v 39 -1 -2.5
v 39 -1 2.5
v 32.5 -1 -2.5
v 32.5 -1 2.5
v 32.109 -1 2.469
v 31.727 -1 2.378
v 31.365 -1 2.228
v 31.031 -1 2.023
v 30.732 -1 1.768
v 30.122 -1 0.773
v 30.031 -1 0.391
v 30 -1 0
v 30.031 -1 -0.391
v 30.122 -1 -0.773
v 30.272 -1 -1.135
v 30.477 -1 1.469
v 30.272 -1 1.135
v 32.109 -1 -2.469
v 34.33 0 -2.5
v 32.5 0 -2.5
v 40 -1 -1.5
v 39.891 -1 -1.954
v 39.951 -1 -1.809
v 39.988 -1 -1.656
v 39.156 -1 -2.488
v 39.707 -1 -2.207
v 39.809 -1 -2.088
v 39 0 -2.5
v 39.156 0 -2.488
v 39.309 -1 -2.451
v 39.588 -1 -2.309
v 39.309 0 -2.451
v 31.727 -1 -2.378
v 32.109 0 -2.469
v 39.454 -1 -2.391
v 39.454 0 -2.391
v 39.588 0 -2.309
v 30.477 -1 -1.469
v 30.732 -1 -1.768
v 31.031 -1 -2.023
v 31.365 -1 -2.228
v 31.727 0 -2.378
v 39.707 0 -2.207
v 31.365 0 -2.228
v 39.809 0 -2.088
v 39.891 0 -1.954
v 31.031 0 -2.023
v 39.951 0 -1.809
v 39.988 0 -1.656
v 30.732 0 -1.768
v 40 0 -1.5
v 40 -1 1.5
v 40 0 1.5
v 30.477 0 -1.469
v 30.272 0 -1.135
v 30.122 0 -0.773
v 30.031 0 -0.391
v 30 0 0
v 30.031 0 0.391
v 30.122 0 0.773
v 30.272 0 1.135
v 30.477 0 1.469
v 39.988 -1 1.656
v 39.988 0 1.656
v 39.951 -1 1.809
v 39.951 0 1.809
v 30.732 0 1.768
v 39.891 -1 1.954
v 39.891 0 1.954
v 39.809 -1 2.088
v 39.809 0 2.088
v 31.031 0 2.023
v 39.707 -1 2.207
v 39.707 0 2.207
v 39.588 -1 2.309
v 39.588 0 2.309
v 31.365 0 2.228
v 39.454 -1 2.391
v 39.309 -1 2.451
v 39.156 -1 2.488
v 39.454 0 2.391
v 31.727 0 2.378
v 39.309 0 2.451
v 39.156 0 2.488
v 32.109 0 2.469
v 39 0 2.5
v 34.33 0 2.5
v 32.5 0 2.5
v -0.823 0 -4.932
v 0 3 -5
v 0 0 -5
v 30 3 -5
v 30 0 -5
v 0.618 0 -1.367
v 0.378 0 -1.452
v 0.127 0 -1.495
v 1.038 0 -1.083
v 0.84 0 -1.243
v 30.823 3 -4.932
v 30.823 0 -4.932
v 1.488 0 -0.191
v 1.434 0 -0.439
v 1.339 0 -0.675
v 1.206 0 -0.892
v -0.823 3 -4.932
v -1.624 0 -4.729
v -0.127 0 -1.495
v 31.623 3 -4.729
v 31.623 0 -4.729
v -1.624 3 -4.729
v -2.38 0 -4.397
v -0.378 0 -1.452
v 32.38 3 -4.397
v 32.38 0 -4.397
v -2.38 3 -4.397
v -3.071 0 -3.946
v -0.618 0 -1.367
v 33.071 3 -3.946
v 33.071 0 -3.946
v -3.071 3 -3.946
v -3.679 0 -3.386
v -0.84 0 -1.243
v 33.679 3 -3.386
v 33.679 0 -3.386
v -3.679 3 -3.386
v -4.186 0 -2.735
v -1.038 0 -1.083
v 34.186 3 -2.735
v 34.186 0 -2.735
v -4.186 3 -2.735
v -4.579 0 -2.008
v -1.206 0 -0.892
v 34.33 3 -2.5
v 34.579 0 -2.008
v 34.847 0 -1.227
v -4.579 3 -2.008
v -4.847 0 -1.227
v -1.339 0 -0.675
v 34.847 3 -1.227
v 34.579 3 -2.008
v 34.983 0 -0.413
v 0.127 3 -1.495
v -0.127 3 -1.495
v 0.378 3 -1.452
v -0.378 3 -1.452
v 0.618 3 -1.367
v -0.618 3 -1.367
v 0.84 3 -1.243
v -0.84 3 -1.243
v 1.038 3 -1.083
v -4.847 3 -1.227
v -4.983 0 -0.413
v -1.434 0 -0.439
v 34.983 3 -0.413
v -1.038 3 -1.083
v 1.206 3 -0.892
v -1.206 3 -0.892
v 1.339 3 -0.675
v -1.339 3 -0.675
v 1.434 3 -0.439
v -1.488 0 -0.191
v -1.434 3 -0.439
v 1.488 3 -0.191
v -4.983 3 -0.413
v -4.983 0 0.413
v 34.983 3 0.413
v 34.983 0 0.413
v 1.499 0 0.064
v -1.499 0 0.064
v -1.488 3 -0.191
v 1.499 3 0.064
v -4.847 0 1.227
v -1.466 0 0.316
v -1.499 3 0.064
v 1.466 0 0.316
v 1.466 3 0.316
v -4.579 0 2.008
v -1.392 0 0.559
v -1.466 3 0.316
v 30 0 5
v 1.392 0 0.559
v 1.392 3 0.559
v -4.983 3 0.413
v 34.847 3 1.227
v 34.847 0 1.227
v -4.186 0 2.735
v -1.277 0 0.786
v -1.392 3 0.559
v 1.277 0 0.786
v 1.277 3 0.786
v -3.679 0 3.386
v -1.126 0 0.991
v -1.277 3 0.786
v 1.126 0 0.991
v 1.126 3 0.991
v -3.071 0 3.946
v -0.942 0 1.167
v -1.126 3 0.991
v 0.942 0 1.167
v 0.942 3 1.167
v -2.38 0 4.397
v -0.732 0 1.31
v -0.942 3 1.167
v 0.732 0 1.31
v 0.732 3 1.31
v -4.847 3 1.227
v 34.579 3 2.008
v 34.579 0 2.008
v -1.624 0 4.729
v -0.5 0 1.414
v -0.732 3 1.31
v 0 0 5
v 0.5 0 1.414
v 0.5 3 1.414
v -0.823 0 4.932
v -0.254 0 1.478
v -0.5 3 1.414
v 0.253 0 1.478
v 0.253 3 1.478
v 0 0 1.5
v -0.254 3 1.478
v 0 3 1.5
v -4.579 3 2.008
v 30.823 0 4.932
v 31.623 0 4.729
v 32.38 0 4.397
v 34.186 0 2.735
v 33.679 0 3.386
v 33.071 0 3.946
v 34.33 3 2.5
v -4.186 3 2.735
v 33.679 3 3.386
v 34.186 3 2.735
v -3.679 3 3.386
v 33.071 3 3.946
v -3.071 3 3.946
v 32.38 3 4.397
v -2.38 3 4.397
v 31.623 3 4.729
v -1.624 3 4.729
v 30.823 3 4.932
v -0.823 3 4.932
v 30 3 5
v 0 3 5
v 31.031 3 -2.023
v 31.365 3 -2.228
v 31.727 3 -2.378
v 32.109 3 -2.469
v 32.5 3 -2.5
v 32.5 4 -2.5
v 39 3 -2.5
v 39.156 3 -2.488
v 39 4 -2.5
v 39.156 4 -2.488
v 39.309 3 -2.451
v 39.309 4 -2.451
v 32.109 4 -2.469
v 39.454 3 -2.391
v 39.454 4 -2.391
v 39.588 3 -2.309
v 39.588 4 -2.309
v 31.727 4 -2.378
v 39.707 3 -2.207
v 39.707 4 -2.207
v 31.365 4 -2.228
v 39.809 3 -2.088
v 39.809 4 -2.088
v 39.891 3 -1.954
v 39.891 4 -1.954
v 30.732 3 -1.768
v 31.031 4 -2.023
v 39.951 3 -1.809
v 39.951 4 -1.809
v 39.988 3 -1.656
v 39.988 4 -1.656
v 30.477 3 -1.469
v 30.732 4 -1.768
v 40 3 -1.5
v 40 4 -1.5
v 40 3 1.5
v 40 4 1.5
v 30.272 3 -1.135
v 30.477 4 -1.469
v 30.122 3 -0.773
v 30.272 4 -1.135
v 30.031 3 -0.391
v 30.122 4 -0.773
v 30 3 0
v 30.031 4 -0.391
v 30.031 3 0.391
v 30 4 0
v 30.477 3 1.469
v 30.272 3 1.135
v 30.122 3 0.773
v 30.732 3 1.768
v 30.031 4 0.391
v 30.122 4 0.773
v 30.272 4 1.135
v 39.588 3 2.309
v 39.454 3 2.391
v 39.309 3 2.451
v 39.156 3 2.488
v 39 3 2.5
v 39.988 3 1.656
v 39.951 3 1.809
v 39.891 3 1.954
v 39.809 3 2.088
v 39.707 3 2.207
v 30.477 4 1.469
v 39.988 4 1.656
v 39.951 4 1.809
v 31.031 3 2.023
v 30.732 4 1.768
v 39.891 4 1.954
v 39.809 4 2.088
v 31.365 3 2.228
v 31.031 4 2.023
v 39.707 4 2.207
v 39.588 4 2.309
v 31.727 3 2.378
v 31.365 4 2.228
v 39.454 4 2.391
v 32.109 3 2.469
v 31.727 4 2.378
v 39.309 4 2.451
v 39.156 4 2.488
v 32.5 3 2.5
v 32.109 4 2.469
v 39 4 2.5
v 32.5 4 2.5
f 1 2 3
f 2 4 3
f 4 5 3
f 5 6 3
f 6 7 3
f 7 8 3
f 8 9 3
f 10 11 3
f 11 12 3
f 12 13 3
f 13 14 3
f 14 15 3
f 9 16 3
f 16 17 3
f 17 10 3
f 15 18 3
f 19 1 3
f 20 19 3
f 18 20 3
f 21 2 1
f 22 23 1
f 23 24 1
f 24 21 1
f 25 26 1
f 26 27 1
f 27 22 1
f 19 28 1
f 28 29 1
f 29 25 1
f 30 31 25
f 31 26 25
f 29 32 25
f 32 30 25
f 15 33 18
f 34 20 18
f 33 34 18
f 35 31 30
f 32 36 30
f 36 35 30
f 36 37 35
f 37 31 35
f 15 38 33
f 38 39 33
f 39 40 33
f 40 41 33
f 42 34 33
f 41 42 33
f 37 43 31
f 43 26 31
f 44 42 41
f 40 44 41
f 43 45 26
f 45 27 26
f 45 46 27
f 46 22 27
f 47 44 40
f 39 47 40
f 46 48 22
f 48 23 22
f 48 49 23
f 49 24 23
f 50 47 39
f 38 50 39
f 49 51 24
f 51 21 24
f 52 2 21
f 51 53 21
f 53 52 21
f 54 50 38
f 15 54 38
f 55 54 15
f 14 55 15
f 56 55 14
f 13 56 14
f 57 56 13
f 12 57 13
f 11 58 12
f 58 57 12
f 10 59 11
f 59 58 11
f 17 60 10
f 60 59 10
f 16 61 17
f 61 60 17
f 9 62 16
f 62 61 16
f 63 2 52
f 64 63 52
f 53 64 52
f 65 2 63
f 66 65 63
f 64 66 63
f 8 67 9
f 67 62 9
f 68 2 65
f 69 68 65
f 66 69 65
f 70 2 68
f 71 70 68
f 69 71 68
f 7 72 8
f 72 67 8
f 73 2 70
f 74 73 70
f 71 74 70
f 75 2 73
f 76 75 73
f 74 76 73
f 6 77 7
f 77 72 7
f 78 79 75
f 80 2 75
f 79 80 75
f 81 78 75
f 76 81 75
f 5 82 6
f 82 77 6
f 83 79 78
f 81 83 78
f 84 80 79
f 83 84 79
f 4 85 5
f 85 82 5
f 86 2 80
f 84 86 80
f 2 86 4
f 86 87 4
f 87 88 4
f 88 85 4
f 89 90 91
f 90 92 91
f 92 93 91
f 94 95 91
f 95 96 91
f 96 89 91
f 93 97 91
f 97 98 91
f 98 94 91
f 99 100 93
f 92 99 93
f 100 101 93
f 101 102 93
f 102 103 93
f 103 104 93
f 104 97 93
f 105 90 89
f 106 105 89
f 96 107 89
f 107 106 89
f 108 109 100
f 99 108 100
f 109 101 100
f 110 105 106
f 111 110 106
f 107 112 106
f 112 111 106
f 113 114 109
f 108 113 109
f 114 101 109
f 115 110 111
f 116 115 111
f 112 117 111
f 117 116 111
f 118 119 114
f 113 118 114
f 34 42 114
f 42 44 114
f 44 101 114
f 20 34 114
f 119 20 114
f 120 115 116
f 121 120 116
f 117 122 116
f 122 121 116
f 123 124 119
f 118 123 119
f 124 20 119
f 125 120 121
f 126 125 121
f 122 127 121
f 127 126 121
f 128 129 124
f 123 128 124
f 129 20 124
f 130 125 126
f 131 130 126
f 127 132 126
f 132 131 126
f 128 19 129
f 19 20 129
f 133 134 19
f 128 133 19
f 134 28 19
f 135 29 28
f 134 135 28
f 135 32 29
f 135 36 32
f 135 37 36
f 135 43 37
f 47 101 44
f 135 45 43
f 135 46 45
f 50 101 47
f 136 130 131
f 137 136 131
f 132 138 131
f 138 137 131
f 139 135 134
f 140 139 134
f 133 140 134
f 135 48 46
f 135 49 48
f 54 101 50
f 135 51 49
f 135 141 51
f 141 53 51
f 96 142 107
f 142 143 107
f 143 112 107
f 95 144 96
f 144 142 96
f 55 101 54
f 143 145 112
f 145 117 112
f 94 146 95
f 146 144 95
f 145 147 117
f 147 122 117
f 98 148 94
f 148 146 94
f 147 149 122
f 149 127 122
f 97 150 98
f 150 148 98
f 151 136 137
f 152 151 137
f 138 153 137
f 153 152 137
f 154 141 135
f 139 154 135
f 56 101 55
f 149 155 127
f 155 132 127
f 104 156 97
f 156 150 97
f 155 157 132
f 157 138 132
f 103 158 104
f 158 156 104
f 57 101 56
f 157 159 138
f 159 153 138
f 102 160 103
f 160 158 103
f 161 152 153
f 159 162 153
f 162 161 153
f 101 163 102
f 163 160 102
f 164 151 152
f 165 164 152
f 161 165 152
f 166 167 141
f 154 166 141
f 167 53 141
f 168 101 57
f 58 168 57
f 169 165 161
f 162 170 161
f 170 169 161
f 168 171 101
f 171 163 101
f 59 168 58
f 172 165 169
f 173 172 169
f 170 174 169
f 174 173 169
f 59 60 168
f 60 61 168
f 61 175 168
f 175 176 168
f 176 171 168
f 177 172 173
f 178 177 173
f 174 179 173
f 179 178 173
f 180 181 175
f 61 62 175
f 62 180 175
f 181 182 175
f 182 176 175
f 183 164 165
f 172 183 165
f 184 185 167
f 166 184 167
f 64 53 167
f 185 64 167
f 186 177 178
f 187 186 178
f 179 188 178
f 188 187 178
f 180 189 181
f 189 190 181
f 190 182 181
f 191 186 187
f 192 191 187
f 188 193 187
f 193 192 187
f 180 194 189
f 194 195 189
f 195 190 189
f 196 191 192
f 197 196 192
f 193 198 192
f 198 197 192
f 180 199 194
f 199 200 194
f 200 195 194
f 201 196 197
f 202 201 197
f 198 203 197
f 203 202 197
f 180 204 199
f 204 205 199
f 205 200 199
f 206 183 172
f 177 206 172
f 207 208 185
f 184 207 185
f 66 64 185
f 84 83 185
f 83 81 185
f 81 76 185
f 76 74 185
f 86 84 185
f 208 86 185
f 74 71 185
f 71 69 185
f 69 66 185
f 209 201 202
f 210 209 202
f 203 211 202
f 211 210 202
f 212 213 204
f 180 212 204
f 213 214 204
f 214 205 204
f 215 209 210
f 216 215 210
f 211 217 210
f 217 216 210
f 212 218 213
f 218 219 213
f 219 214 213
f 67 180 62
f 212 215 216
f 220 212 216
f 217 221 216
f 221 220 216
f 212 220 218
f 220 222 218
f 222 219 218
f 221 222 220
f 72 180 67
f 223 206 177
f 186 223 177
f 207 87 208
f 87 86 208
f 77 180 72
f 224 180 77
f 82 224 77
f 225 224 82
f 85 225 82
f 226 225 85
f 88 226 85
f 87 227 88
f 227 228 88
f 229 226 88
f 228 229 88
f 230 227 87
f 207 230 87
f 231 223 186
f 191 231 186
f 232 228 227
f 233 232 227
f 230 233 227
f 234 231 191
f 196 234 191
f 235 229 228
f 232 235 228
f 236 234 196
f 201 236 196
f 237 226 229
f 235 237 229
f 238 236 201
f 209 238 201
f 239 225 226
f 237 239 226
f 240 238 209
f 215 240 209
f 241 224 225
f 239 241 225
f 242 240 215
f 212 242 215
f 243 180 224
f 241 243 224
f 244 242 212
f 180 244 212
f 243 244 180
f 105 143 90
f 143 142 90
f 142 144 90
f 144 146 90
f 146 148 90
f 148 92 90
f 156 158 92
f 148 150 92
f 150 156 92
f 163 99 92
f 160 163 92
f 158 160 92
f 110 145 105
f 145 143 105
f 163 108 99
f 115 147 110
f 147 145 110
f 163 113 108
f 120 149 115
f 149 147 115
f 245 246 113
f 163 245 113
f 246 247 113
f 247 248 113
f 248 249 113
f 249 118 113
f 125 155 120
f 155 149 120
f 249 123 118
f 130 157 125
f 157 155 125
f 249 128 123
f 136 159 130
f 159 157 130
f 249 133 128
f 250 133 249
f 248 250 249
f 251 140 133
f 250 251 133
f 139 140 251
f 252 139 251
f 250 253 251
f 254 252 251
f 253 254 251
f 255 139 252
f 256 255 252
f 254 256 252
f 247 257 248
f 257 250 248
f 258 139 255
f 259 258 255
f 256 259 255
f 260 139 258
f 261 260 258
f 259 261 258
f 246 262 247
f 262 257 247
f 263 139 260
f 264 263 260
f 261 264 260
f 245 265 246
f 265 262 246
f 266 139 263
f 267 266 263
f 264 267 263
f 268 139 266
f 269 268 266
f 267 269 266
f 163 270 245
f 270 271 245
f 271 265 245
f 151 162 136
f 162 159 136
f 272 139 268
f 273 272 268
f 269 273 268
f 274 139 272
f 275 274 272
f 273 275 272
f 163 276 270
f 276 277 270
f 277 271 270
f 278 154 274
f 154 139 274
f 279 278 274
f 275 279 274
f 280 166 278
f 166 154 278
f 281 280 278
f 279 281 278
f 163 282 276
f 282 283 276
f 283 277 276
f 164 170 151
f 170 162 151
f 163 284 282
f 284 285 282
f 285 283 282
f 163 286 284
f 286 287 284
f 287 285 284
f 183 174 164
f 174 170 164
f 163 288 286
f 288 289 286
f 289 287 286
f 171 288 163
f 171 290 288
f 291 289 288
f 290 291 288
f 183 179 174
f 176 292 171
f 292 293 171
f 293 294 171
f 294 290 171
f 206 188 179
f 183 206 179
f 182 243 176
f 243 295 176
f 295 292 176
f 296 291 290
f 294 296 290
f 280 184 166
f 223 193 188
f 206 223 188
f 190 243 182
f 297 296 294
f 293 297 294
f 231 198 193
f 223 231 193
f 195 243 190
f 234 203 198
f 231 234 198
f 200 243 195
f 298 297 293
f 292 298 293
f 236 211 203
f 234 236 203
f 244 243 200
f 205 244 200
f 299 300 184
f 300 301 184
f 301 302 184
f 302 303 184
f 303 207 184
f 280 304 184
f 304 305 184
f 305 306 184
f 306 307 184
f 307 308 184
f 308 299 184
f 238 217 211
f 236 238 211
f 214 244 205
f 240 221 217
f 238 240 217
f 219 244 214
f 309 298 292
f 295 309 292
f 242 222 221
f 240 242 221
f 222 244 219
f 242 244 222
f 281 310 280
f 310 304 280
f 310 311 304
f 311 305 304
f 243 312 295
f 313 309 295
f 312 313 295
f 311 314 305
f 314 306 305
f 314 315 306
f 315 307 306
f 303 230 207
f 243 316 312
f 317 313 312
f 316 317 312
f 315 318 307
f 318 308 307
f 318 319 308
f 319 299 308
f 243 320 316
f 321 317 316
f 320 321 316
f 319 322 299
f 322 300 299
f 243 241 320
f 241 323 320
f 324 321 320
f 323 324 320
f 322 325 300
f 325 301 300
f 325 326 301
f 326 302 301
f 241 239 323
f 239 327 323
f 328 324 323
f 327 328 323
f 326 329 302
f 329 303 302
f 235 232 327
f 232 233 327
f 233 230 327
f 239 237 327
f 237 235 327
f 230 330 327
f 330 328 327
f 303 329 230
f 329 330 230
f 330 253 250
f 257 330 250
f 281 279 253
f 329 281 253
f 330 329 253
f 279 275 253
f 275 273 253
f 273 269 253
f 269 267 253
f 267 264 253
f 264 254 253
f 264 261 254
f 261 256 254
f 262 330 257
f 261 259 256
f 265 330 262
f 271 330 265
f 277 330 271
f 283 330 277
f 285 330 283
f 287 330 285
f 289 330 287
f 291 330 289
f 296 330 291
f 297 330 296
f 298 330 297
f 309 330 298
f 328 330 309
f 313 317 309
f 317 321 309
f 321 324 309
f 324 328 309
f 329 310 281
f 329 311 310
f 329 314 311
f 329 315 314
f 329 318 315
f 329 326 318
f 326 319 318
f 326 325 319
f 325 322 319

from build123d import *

# Parameters (mm, degrees)
BOSS_EXTRUDE1_DEPTH = 3
SKETCH5_W           = 10
SKETCH5_H           = 1
BOSS_EXTRUDE2_DEPTH = 2.5
FILLET1_R           = 2.5
FILLET2_R           = 1
SKETCH6_R           = 1.5
CUT_EXTRUDE1_DEPTH  = 41.509258201


with BuildPart() as part:
    # Sketch2 → Boss-Extrude1 (new body)
    with BuildSketch(Plane(origin=(0, 0, 0), x_dir=(1, 0, 0), z_dir=(0, 1, 0))):
        with BuildLine():
            Line((0, 5), (30, 5))
            ThreePointArc((30, 5), (35, 0), (30, -5))
            Line((30, -5), (0, -5))
            ThreePointArc((0, -5), (-5, 0), (0, 5))
        make_face()
    extrude(amount=BOSS_EXTRUDE1_DEPTH)

    # Sketch5 → Boss-Extrude2 (add, symmetric)
    with BuildSketch(Plane.XY):
        with Locations((35, 3.5)):
            Rectangle(SKETCH5_W, SKETCH5_H)
        with Locations((35, -0.5)):
            Rectangle(SKETCH5_W, SKETCH5_H)
    extrude(amount=BOSS_EXTRUDE2_DEPTH, both=True)

    # Fillet1
    fillet1_edges = [part.edges().sort_by_distance(p)[0] for p in [
        (30, -0.5, 2.5),
        (30, -0.5, -2.5),
        (30, 3.5, -2.5),
        (30, 3.5, 2.5),
    ]]
    fillet(fillet1_edges, radius=FILLET1_R - 0.0001)  # a hair under: the kernel refuses the full size

    # Fillet2
    fillet2_edges = [part.edges().sort_by_distance(p)[0] for p in [
        (40, 3.5, -2.5),
        (40, 3.5, 2.5),
        (40, -0.5, -2.5),
        (40, -0.5, 2.5),
    ]]
    fillet(fillet2_edges, radius=FILLET2_R)

    # Sketch6 → Cut-Extrude1 (cut, through all)
    with BuildSketch(Plane(origin=(0, 3, 0), x_dir=(1, 0, 0), z_dir=(0, 1, 0))):
        with Locations(Location((0, 0, 0), (0, 0, 270))):
            Circle(SKETCH6_R)
    extrude(amount=-CUT_EXTRUDE1_DEPTH, mode=Mode.SUBTRACT)


solid = part.part
